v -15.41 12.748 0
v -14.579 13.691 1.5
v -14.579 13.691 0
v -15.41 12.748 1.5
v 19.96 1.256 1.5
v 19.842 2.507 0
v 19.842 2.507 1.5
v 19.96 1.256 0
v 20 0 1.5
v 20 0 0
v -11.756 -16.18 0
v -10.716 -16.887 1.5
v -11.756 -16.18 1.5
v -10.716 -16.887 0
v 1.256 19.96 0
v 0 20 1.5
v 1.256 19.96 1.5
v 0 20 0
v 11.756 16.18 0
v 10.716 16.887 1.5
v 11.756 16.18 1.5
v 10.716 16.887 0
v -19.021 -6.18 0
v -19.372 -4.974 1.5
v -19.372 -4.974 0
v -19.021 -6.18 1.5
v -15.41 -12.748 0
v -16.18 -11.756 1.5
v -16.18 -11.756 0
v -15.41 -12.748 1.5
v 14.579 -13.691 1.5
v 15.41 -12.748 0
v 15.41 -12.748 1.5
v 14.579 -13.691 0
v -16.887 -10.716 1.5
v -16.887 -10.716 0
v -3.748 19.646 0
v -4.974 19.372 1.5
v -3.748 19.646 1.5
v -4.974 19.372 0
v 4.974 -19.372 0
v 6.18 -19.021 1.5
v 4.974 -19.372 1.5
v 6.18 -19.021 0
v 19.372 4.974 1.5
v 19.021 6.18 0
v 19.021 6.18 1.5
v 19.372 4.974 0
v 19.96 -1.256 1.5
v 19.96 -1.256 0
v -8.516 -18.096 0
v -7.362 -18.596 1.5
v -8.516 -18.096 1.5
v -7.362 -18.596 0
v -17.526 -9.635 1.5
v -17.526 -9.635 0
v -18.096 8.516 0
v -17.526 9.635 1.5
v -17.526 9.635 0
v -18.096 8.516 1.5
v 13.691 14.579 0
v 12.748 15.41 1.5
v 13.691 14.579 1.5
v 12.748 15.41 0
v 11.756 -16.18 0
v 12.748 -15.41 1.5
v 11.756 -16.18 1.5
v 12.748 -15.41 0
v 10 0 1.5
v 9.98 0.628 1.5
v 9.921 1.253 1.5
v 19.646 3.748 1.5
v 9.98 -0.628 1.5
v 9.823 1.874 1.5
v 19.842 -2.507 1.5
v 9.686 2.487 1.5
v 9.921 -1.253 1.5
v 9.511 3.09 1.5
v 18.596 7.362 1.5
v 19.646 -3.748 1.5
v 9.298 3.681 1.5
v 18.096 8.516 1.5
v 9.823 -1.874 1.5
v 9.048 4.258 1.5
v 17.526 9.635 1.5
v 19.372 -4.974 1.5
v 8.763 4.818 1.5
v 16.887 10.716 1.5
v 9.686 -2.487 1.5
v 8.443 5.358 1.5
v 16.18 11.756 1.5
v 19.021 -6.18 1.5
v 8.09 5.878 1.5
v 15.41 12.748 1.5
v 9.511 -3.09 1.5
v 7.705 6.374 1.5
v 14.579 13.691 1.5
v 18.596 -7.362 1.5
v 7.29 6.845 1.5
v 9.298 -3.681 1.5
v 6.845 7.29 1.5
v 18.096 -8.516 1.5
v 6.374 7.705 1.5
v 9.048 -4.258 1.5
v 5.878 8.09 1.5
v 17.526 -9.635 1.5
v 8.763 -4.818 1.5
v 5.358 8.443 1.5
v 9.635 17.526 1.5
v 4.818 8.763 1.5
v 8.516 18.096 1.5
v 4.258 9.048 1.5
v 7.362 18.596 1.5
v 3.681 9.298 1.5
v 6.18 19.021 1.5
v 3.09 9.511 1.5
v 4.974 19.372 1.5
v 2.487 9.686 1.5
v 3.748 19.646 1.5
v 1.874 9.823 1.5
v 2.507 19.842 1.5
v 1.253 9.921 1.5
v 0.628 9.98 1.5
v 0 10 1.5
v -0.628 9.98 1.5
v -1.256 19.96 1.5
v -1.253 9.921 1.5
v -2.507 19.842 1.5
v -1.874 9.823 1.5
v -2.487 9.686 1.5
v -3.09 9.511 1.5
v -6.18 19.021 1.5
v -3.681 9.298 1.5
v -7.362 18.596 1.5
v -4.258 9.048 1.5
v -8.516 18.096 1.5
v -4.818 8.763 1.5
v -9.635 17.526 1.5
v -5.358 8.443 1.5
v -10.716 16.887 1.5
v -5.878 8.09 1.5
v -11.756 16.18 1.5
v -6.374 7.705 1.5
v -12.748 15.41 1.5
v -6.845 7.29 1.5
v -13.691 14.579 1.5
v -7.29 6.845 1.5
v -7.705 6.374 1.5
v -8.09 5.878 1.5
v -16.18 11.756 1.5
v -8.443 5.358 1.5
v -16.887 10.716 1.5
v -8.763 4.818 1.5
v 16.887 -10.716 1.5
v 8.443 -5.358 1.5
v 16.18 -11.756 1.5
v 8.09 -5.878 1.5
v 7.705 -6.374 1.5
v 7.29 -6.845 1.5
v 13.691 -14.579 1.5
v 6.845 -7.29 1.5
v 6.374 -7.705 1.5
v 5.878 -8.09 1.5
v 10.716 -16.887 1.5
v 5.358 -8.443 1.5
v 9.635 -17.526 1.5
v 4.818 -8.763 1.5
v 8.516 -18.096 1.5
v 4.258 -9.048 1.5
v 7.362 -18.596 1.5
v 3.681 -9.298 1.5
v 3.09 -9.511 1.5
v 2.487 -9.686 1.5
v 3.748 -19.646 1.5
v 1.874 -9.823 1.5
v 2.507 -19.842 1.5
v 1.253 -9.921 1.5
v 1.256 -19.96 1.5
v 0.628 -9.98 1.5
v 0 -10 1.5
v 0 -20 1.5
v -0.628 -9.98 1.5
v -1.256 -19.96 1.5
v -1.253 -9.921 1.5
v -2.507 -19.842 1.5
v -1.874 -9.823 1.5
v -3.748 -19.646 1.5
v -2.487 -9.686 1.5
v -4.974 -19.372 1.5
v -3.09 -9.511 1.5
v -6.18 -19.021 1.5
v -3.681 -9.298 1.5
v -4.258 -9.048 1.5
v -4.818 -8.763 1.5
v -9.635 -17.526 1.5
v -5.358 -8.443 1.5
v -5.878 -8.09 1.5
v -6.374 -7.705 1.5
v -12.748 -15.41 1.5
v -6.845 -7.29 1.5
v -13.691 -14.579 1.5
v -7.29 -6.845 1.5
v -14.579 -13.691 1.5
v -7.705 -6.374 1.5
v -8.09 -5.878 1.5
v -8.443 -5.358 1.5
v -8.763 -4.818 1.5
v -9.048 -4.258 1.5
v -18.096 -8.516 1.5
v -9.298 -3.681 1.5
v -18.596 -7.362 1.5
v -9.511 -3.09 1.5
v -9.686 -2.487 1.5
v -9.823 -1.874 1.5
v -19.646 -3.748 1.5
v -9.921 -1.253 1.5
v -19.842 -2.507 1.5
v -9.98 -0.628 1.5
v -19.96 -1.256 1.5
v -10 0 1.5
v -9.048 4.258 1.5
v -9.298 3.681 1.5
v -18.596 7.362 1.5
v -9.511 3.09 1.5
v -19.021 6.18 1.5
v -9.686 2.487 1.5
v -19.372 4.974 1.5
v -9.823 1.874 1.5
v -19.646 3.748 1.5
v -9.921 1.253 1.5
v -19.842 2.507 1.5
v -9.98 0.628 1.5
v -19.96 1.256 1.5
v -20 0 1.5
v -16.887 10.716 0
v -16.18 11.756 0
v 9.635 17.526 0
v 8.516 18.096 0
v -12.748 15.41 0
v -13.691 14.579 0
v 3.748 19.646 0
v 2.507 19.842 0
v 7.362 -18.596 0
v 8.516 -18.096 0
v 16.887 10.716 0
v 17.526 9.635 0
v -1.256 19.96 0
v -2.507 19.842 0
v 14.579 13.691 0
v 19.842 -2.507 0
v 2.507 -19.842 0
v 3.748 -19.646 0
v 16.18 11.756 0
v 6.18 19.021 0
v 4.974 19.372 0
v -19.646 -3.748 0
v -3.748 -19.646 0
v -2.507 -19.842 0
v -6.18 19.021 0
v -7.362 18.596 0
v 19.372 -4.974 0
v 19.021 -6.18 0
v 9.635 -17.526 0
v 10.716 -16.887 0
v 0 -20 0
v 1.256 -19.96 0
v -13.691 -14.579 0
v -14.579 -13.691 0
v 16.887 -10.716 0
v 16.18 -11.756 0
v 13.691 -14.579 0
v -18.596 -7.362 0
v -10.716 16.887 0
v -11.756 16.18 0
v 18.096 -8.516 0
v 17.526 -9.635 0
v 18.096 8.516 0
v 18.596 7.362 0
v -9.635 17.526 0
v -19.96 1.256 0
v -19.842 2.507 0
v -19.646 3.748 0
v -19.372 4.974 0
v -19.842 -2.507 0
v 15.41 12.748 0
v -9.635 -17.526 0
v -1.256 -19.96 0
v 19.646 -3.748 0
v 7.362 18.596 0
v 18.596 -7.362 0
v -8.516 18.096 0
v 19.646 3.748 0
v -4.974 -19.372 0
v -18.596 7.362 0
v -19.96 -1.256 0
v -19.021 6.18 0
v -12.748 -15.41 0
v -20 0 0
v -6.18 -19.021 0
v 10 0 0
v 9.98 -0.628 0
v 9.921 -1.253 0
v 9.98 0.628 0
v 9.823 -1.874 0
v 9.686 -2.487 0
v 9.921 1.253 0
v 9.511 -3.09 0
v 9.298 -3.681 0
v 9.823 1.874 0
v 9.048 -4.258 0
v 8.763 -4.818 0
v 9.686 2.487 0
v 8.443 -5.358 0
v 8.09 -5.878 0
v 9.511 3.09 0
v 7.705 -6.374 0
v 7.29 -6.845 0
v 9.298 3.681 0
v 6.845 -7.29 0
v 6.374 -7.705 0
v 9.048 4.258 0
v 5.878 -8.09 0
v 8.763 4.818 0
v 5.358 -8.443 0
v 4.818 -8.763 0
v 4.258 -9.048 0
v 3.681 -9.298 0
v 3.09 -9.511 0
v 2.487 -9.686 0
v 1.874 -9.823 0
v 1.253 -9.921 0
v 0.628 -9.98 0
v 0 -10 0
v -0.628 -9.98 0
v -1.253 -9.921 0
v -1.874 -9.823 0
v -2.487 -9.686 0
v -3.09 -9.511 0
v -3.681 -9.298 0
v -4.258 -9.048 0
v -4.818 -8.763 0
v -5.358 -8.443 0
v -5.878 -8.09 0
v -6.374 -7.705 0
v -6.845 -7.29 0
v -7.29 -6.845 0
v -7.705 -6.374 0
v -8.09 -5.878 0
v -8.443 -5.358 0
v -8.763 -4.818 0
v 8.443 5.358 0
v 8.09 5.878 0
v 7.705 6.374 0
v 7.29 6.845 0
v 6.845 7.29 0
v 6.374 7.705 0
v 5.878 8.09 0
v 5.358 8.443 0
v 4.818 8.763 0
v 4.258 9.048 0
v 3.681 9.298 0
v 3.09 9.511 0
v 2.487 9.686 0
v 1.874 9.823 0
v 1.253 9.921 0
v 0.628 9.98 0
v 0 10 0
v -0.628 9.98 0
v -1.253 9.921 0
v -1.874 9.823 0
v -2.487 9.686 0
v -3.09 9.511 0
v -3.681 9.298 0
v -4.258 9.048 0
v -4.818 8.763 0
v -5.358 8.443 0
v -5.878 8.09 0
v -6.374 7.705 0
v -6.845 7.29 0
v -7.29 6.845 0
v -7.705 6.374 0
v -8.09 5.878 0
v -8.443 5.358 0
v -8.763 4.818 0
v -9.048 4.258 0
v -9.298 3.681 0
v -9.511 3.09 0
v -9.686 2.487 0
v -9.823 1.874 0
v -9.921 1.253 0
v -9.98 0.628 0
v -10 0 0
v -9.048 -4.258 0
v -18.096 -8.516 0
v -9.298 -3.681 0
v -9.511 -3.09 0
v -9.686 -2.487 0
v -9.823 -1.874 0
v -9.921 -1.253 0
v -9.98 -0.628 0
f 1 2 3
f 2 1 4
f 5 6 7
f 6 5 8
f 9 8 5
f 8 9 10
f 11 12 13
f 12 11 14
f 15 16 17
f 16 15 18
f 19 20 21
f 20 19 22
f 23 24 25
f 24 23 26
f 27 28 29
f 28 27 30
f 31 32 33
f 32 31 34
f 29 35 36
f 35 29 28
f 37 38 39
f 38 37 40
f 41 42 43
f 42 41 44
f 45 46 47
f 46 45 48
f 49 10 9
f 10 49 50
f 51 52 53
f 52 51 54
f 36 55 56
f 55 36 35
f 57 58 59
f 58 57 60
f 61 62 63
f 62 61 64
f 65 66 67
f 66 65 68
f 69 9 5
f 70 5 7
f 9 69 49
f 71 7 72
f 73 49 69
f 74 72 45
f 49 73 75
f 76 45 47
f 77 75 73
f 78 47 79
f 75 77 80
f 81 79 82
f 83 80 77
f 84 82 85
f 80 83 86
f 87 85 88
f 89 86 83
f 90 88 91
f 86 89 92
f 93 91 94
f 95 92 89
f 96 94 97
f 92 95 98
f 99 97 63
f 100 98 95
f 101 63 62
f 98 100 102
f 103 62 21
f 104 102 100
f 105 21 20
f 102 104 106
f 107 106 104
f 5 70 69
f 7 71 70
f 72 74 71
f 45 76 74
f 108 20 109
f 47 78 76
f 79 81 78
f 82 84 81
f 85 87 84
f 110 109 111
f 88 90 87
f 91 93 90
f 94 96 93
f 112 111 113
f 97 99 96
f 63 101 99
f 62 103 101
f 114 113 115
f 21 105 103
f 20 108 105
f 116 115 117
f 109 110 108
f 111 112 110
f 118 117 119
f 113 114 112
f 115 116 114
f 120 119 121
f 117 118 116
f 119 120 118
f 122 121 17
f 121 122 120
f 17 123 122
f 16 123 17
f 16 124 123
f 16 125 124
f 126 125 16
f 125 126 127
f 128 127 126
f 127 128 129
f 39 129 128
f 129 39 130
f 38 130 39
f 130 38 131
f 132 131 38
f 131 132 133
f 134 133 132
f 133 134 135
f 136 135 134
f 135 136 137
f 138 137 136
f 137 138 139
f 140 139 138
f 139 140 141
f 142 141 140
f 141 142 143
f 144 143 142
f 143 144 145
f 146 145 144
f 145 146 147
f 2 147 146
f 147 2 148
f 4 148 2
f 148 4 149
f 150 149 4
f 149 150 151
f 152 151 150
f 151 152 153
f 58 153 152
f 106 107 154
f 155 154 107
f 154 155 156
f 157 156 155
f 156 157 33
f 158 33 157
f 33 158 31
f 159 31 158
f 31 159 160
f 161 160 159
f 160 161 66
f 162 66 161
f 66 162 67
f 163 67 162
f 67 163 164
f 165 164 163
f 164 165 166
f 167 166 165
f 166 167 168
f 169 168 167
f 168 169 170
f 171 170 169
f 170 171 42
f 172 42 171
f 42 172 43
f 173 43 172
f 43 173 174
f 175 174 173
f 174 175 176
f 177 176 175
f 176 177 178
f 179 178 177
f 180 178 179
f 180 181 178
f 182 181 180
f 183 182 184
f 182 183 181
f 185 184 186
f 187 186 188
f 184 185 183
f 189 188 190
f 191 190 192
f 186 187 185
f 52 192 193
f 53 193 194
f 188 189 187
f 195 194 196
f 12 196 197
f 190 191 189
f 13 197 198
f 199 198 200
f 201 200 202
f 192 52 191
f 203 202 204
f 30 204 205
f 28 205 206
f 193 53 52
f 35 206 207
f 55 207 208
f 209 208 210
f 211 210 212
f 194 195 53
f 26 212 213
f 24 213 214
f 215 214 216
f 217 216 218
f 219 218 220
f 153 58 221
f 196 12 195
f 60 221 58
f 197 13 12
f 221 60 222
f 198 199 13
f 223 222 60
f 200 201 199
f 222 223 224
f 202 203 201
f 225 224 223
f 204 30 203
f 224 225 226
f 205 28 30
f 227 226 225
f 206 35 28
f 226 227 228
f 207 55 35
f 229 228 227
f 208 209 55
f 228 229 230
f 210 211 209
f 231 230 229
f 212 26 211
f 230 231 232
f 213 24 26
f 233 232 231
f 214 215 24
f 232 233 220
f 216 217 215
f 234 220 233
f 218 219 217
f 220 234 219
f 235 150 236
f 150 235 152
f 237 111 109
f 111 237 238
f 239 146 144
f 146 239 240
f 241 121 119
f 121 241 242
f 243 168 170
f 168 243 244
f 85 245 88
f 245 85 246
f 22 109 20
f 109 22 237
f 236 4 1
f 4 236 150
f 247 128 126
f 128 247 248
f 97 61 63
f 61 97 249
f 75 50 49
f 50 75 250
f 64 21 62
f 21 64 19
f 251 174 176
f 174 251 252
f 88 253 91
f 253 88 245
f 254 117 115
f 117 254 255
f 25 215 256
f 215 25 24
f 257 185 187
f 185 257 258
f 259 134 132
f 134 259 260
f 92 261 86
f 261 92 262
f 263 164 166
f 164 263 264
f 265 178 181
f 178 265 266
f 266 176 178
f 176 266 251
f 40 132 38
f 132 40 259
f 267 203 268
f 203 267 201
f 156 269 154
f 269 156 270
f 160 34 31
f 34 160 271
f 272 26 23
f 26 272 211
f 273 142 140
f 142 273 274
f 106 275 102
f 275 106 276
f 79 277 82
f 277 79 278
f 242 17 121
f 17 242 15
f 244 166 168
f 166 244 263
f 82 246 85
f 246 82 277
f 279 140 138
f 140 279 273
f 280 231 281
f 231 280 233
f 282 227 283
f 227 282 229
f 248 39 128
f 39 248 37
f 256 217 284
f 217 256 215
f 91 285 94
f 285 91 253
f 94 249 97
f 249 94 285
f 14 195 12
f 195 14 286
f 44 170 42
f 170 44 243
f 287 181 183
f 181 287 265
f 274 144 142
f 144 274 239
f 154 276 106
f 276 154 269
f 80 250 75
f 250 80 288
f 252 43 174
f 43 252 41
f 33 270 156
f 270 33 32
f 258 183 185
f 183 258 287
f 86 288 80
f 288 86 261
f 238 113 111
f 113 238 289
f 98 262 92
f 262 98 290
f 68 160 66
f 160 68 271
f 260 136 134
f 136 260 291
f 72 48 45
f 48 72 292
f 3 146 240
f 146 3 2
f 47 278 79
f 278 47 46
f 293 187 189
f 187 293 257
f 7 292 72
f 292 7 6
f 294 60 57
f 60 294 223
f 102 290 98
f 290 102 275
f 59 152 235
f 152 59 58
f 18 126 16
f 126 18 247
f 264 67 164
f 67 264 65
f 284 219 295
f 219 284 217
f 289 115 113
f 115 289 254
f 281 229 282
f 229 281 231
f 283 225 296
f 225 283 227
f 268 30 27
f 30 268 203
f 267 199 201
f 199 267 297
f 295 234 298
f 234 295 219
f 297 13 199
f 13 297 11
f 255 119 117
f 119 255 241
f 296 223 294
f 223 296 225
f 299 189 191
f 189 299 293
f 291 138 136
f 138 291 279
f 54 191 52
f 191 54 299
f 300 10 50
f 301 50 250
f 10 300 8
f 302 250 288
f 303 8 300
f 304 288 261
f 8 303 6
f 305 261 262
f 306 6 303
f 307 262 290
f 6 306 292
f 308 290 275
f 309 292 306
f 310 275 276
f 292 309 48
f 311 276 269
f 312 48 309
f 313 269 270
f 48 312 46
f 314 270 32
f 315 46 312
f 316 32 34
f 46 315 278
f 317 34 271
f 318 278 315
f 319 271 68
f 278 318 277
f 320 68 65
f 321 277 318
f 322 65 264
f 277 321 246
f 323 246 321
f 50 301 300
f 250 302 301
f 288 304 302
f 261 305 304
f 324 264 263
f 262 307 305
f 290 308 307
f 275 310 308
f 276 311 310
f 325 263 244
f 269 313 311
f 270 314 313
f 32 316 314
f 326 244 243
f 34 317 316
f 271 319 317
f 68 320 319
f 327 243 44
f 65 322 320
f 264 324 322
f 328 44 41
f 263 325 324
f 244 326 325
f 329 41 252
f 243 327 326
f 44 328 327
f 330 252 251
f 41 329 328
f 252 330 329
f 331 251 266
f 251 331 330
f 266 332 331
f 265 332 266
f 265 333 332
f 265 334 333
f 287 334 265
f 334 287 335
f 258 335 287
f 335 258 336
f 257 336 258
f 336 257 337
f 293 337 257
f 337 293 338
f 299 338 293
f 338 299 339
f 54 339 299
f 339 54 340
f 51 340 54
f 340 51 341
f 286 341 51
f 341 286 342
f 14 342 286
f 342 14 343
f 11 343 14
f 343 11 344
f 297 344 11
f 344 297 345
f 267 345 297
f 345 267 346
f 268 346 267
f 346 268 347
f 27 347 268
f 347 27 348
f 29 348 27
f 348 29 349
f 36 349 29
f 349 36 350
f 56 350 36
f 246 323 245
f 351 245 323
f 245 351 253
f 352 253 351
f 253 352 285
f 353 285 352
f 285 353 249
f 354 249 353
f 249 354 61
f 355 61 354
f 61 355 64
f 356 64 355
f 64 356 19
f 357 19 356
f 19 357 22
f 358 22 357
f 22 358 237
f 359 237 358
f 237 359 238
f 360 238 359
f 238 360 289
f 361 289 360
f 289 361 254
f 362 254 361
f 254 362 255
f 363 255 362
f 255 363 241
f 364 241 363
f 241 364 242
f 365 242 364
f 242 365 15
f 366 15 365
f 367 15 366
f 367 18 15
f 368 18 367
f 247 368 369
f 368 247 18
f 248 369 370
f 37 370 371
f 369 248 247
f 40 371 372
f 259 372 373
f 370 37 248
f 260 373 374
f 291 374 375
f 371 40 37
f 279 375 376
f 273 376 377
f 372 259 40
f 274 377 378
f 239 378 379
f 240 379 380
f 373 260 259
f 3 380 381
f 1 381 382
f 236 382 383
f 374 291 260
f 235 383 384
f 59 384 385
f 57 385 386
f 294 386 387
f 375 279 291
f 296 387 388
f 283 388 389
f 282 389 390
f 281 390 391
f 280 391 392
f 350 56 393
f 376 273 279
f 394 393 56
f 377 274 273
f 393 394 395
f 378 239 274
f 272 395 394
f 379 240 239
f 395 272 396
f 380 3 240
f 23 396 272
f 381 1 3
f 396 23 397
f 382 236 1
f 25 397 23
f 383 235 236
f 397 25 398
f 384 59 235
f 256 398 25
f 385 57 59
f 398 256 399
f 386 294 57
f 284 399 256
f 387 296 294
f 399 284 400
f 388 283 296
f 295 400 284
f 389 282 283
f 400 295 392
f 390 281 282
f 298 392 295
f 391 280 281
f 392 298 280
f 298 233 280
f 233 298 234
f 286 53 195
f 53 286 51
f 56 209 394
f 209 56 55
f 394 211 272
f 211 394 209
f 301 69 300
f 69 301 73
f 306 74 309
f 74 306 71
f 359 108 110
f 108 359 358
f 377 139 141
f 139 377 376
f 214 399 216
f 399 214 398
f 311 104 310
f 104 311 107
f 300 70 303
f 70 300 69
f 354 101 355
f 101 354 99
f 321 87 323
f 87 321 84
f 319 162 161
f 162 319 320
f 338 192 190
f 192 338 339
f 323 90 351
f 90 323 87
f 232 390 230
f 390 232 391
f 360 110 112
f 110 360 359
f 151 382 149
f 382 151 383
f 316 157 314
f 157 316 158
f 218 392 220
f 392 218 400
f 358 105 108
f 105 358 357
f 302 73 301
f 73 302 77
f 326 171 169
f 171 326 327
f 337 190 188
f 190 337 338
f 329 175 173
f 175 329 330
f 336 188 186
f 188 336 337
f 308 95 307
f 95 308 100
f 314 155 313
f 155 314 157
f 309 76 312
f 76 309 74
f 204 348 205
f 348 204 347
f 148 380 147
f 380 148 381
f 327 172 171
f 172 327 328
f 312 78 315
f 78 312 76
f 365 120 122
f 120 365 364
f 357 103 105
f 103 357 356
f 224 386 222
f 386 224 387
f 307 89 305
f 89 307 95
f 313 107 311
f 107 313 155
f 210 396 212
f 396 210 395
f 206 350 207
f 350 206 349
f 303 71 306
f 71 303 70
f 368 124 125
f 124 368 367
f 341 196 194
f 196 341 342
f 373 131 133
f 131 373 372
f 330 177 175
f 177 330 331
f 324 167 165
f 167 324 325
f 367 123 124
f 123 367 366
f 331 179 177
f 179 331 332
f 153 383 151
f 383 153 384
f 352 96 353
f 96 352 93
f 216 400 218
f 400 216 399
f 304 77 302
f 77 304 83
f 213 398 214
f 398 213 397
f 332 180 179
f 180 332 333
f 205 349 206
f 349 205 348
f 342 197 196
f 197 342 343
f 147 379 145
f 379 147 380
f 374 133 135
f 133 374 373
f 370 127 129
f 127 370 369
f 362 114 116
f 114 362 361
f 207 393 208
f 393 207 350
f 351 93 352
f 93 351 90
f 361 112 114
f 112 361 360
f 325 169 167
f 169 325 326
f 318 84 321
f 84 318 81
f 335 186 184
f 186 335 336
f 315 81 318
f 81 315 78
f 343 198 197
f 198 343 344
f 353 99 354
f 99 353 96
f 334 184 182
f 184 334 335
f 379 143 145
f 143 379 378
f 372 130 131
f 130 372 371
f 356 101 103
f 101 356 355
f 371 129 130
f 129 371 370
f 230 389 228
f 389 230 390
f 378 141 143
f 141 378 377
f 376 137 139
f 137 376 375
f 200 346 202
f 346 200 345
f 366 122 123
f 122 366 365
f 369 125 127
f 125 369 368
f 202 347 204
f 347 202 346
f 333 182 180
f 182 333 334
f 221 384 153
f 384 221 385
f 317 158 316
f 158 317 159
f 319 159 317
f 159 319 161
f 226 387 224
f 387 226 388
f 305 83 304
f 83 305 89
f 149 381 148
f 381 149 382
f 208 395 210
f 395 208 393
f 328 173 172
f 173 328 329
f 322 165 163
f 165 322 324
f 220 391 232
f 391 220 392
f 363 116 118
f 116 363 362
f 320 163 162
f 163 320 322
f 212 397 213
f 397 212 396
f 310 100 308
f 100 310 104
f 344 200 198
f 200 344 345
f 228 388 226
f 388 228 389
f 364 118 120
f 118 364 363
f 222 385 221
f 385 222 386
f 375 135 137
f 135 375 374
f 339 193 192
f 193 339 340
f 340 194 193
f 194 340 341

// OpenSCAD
// Spacer Ring Component
// This code generates a flat, ring-shaped component with a smooth surface.

module spacer_ring() {
    difference() {
        // Outer cylinder
        cylinder(h = 1.5, r = 20, $fn = 100); // Reduced thickness to match the original model
        // Inner cylinder (hollow center)
        translate([0, 0, -0.5]) // Slightly lower the inner cylinder to ensure clean subtraction
        cylinder(h = 2.5, r = 10, $fn = 100); // Adjusted height for proper subtraction
    }
}

// Render the spacer ring
spacer_ring();
